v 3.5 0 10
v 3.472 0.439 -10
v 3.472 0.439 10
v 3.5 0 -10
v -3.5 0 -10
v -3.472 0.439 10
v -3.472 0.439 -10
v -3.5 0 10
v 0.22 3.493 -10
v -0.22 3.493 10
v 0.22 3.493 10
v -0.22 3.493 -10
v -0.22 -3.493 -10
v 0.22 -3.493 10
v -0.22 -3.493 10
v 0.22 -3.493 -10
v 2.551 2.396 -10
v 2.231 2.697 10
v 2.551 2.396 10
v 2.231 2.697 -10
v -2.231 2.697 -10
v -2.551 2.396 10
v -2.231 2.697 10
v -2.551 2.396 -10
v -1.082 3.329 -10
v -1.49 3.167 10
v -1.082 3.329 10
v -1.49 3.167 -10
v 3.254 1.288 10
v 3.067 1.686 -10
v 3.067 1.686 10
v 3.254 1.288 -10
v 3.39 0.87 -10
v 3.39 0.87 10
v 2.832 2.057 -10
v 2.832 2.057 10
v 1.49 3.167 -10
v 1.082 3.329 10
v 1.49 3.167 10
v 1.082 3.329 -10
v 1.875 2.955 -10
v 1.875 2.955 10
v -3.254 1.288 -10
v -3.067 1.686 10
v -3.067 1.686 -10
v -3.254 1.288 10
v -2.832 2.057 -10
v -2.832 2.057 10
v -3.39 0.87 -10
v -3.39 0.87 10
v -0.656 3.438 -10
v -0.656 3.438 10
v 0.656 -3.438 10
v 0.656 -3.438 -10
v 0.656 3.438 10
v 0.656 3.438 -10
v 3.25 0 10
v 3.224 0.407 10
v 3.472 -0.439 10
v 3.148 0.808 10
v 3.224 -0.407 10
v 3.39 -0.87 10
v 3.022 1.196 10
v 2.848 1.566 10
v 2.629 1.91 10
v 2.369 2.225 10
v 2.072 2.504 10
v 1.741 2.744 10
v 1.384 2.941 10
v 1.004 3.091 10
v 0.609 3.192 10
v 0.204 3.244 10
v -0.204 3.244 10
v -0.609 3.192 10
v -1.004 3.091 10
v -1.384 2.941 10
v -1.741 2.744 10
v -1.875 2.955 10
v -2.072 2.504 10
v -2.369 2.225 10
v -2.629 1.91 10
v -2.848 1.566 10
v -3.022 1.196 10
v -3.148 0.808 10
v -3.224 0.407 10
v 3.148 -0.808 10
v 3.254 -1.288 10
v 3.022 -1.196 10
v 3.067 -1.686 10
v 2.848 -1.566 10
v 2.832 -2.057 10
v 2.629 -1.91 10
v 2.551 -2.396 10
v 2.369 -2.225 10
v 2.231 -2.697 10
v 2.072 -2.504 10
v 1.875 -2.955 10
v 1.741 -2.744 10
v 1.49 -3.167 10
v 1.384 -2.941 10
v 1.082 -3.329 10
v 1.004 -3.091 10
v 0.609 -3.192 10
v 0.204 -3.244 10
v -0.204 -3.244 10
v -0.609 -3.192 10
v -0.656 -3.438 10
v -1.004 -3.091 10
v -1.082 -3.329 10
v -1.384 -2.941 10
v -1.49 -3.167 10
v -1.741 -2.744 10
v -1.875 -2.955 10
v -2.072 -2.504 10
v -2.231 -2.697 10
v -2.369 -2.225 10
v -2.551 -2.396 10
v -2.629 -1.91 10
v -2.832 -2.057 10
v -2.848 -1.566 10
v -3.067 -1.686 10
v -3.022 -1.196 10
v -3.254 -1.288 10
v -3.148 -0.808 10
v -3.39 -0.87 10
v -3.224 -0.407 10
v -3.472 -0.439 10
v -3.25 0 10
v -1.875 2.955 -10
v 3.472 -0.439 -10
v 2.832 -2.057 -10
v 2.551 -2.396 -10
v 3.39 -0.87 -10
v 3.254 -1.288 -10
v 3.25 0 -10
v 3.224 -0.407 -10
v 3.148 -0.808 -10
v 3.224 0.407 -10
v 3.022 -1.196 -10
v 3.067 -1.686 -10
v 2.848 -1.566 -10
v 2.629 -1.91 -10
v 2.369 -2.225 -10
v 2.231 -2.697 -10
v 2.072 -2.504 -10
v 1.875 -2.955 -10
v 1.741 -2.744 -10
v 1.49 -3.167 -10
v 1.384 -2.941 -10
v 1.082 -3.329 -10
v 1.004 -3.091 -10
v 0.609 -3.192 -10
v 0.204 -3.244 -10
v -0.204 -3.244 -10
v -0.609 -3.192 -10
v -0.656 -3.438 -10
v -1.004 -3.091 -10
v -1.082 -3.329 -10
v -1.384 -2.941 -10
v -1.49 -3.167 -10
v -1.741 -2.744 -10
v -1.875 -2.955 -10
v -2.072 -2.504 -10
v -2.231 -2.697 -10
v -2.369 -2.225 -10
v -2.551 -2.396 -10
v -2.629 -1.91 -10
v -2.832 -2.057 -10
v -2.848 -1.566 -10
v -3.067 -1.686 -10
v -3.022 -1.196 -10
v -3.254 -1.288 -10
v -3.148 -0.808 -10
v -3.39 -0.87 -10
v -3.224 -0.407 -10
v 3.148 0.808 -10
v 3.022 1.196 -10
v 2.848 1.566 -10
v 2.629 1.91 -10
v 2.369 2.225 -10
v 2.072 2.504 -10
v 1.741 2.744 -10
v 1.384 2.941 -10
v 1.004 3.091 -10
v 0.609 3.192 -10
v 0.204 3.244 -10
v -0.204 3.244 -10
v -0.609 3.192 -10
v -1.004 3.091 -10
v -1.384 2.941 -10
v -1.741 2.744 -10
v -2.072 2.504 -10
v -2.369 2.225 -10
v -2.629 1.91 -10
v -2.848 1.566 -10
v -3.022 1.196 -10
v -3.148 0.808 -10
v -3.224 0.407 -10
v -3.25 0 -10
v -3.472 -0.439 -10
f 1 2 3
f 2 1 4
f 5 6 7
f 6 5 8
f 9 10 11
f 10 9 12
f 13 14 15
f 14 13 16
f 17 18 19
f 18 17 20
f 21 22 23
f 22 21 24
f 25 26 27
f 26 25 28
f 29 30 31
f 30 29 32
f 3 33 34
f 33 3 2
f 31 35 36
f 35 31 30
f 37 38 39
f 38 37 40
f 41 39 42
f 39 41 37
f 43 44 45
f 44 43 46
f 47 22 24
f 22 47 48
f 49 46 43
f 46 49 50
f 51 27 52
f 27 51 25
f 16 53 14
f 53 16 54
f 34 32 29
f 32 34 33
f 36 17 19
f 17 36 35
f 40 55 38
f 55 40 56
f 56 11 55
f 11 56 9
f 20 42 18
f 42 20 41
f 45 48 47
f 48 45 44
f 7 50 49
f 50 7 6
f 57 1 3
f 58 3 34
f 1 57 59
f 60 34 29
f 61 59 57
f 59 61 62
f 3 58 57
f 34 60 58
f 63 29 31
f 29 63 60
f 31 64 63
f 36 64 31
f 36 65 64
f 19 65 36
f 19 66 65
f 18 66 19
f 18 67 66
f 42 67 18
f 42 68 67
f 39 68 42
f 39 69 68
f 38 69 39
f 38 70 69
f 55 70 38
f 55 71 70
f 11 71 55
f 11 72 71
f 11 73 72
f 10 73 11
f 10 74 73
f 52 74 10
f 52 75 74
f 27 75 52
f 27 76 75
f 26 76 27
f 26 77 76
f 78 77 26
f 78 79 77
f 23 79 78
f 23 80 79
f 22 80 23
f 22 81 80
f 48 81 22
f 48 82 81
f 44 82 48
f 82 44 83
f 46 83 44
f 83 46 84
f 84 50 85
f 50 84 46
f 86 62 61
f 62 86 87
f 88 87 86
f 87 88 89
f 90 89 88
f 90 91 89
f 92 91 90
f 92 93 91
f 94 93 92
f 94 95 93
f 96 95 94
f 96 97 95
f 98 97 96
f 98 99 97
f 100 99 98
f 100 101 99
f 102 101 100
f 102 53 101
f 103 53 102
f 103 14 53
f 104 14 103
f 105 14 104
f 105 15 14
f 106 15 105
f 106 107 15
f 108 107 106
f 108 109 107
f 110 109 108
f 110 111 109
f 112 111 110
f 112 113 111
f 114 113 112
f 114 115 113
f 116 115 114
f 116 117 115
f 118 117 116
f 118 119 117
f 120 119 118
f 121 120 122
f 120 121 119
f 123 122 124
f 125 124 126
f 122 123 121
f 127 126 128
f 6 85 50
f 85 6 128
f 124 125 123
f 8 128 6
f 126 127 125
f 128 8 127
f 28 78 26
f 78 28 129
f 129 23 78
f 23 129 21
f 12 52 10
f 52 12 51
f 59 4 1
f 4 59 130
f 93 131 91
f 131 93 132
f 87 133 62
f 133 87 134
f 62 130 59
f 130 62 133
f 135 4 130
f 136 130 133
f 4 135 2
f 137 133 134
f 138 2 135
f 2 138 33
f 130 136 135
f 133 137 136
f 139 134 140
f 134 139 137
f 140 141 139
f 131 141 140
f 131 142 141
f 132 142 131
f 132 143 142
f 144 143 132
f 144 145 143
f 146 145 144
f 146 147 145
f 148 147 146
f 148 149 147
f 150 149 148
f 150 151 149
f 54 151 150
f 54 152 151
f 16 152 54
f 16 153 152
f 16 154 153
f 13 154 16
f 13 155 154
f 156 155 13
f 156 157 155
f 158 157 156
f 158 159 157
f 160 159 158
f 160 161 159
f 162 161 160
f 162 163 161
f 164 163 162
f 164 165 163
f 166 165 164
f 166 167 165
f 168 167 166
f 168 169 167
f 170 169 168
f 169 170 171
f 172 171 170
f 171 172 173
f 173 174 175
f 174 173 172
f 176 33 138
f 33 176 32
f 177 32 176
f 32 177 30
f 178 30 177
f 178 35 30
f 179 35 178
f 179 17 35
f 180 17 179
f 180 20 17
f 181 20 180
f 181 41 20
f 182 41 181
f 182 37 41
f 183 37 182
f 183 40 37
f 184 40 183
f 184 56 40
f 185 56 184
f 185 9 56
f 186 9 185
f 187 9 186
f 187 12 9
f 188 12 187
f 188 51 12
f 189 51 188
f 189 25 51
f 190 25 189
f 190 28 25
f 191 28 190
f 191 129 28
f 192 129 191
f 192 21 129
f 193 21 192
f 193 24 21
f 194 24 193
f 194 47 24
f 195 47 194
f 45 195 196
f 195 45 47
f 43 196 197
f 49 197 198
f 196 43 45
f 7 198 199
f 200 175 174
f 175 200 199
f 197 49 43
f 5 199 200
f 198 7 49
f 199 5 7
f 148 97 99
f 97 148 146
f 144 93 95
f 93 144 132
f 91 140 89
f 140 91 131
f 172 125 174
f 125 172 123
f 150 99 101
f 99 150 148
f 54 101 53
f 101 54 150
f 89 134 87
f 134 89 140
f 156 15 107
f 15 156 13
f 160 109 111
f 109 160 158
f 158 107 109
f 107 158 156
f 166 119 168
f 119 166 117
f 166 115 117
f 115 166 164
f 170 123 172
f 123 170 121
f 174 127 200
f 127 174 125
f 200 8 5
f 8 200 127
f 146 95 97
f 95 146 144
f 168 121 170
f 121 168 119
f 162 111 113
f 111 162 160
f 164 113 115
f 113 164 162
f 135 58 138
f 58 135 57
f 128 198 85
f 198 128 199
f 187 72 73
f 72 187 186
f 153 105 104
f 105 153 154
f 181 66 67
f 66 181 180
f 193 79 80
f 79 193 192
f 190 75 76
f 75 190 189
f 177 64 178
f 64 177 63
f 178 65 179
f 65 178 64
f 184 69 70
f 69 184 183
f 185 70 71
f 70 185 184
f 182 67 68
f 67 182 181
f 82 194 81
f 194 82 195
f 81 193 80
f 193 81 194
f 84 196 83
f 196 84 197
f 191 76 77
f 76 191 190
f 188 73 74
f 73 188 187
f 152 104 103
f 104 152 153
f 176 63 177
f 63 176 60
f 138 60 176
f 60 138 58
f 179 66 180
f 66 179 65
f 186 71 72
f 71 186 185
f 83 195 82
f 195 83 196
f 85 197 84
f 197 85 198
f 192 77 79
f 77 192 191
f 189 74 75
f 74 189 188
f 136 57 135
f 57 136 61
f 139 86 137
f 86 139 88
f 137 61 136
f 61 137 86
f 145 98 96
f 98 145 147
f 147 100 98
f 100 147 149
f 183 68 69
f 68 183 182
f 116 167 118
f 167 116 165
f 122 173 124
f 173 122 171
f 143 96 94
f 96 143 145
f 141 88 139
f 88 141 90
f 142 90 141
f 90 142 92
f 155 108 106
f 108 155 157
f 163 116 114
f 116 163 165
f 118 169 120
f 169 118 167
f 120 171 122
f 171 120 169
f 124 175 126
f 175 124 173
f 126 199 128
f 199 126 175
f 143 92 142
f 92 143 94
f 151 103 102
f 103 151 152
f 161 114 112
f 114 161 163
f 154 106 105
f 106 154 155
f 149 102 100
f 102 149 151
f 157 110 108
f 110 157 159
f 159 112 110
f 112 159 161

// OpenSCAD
$fn = 50;


difference() {
	union() {
		translate(v = [0, 0, -10.0000000000]) {
			cylinder(h = 20, r = 3.5000000000);
		}
	}
	union() {
		translate(v = [0, 0, -100.0000000000]) {
			cylinder(h = 200, r = 3.2500000000);
		}
	}
}
